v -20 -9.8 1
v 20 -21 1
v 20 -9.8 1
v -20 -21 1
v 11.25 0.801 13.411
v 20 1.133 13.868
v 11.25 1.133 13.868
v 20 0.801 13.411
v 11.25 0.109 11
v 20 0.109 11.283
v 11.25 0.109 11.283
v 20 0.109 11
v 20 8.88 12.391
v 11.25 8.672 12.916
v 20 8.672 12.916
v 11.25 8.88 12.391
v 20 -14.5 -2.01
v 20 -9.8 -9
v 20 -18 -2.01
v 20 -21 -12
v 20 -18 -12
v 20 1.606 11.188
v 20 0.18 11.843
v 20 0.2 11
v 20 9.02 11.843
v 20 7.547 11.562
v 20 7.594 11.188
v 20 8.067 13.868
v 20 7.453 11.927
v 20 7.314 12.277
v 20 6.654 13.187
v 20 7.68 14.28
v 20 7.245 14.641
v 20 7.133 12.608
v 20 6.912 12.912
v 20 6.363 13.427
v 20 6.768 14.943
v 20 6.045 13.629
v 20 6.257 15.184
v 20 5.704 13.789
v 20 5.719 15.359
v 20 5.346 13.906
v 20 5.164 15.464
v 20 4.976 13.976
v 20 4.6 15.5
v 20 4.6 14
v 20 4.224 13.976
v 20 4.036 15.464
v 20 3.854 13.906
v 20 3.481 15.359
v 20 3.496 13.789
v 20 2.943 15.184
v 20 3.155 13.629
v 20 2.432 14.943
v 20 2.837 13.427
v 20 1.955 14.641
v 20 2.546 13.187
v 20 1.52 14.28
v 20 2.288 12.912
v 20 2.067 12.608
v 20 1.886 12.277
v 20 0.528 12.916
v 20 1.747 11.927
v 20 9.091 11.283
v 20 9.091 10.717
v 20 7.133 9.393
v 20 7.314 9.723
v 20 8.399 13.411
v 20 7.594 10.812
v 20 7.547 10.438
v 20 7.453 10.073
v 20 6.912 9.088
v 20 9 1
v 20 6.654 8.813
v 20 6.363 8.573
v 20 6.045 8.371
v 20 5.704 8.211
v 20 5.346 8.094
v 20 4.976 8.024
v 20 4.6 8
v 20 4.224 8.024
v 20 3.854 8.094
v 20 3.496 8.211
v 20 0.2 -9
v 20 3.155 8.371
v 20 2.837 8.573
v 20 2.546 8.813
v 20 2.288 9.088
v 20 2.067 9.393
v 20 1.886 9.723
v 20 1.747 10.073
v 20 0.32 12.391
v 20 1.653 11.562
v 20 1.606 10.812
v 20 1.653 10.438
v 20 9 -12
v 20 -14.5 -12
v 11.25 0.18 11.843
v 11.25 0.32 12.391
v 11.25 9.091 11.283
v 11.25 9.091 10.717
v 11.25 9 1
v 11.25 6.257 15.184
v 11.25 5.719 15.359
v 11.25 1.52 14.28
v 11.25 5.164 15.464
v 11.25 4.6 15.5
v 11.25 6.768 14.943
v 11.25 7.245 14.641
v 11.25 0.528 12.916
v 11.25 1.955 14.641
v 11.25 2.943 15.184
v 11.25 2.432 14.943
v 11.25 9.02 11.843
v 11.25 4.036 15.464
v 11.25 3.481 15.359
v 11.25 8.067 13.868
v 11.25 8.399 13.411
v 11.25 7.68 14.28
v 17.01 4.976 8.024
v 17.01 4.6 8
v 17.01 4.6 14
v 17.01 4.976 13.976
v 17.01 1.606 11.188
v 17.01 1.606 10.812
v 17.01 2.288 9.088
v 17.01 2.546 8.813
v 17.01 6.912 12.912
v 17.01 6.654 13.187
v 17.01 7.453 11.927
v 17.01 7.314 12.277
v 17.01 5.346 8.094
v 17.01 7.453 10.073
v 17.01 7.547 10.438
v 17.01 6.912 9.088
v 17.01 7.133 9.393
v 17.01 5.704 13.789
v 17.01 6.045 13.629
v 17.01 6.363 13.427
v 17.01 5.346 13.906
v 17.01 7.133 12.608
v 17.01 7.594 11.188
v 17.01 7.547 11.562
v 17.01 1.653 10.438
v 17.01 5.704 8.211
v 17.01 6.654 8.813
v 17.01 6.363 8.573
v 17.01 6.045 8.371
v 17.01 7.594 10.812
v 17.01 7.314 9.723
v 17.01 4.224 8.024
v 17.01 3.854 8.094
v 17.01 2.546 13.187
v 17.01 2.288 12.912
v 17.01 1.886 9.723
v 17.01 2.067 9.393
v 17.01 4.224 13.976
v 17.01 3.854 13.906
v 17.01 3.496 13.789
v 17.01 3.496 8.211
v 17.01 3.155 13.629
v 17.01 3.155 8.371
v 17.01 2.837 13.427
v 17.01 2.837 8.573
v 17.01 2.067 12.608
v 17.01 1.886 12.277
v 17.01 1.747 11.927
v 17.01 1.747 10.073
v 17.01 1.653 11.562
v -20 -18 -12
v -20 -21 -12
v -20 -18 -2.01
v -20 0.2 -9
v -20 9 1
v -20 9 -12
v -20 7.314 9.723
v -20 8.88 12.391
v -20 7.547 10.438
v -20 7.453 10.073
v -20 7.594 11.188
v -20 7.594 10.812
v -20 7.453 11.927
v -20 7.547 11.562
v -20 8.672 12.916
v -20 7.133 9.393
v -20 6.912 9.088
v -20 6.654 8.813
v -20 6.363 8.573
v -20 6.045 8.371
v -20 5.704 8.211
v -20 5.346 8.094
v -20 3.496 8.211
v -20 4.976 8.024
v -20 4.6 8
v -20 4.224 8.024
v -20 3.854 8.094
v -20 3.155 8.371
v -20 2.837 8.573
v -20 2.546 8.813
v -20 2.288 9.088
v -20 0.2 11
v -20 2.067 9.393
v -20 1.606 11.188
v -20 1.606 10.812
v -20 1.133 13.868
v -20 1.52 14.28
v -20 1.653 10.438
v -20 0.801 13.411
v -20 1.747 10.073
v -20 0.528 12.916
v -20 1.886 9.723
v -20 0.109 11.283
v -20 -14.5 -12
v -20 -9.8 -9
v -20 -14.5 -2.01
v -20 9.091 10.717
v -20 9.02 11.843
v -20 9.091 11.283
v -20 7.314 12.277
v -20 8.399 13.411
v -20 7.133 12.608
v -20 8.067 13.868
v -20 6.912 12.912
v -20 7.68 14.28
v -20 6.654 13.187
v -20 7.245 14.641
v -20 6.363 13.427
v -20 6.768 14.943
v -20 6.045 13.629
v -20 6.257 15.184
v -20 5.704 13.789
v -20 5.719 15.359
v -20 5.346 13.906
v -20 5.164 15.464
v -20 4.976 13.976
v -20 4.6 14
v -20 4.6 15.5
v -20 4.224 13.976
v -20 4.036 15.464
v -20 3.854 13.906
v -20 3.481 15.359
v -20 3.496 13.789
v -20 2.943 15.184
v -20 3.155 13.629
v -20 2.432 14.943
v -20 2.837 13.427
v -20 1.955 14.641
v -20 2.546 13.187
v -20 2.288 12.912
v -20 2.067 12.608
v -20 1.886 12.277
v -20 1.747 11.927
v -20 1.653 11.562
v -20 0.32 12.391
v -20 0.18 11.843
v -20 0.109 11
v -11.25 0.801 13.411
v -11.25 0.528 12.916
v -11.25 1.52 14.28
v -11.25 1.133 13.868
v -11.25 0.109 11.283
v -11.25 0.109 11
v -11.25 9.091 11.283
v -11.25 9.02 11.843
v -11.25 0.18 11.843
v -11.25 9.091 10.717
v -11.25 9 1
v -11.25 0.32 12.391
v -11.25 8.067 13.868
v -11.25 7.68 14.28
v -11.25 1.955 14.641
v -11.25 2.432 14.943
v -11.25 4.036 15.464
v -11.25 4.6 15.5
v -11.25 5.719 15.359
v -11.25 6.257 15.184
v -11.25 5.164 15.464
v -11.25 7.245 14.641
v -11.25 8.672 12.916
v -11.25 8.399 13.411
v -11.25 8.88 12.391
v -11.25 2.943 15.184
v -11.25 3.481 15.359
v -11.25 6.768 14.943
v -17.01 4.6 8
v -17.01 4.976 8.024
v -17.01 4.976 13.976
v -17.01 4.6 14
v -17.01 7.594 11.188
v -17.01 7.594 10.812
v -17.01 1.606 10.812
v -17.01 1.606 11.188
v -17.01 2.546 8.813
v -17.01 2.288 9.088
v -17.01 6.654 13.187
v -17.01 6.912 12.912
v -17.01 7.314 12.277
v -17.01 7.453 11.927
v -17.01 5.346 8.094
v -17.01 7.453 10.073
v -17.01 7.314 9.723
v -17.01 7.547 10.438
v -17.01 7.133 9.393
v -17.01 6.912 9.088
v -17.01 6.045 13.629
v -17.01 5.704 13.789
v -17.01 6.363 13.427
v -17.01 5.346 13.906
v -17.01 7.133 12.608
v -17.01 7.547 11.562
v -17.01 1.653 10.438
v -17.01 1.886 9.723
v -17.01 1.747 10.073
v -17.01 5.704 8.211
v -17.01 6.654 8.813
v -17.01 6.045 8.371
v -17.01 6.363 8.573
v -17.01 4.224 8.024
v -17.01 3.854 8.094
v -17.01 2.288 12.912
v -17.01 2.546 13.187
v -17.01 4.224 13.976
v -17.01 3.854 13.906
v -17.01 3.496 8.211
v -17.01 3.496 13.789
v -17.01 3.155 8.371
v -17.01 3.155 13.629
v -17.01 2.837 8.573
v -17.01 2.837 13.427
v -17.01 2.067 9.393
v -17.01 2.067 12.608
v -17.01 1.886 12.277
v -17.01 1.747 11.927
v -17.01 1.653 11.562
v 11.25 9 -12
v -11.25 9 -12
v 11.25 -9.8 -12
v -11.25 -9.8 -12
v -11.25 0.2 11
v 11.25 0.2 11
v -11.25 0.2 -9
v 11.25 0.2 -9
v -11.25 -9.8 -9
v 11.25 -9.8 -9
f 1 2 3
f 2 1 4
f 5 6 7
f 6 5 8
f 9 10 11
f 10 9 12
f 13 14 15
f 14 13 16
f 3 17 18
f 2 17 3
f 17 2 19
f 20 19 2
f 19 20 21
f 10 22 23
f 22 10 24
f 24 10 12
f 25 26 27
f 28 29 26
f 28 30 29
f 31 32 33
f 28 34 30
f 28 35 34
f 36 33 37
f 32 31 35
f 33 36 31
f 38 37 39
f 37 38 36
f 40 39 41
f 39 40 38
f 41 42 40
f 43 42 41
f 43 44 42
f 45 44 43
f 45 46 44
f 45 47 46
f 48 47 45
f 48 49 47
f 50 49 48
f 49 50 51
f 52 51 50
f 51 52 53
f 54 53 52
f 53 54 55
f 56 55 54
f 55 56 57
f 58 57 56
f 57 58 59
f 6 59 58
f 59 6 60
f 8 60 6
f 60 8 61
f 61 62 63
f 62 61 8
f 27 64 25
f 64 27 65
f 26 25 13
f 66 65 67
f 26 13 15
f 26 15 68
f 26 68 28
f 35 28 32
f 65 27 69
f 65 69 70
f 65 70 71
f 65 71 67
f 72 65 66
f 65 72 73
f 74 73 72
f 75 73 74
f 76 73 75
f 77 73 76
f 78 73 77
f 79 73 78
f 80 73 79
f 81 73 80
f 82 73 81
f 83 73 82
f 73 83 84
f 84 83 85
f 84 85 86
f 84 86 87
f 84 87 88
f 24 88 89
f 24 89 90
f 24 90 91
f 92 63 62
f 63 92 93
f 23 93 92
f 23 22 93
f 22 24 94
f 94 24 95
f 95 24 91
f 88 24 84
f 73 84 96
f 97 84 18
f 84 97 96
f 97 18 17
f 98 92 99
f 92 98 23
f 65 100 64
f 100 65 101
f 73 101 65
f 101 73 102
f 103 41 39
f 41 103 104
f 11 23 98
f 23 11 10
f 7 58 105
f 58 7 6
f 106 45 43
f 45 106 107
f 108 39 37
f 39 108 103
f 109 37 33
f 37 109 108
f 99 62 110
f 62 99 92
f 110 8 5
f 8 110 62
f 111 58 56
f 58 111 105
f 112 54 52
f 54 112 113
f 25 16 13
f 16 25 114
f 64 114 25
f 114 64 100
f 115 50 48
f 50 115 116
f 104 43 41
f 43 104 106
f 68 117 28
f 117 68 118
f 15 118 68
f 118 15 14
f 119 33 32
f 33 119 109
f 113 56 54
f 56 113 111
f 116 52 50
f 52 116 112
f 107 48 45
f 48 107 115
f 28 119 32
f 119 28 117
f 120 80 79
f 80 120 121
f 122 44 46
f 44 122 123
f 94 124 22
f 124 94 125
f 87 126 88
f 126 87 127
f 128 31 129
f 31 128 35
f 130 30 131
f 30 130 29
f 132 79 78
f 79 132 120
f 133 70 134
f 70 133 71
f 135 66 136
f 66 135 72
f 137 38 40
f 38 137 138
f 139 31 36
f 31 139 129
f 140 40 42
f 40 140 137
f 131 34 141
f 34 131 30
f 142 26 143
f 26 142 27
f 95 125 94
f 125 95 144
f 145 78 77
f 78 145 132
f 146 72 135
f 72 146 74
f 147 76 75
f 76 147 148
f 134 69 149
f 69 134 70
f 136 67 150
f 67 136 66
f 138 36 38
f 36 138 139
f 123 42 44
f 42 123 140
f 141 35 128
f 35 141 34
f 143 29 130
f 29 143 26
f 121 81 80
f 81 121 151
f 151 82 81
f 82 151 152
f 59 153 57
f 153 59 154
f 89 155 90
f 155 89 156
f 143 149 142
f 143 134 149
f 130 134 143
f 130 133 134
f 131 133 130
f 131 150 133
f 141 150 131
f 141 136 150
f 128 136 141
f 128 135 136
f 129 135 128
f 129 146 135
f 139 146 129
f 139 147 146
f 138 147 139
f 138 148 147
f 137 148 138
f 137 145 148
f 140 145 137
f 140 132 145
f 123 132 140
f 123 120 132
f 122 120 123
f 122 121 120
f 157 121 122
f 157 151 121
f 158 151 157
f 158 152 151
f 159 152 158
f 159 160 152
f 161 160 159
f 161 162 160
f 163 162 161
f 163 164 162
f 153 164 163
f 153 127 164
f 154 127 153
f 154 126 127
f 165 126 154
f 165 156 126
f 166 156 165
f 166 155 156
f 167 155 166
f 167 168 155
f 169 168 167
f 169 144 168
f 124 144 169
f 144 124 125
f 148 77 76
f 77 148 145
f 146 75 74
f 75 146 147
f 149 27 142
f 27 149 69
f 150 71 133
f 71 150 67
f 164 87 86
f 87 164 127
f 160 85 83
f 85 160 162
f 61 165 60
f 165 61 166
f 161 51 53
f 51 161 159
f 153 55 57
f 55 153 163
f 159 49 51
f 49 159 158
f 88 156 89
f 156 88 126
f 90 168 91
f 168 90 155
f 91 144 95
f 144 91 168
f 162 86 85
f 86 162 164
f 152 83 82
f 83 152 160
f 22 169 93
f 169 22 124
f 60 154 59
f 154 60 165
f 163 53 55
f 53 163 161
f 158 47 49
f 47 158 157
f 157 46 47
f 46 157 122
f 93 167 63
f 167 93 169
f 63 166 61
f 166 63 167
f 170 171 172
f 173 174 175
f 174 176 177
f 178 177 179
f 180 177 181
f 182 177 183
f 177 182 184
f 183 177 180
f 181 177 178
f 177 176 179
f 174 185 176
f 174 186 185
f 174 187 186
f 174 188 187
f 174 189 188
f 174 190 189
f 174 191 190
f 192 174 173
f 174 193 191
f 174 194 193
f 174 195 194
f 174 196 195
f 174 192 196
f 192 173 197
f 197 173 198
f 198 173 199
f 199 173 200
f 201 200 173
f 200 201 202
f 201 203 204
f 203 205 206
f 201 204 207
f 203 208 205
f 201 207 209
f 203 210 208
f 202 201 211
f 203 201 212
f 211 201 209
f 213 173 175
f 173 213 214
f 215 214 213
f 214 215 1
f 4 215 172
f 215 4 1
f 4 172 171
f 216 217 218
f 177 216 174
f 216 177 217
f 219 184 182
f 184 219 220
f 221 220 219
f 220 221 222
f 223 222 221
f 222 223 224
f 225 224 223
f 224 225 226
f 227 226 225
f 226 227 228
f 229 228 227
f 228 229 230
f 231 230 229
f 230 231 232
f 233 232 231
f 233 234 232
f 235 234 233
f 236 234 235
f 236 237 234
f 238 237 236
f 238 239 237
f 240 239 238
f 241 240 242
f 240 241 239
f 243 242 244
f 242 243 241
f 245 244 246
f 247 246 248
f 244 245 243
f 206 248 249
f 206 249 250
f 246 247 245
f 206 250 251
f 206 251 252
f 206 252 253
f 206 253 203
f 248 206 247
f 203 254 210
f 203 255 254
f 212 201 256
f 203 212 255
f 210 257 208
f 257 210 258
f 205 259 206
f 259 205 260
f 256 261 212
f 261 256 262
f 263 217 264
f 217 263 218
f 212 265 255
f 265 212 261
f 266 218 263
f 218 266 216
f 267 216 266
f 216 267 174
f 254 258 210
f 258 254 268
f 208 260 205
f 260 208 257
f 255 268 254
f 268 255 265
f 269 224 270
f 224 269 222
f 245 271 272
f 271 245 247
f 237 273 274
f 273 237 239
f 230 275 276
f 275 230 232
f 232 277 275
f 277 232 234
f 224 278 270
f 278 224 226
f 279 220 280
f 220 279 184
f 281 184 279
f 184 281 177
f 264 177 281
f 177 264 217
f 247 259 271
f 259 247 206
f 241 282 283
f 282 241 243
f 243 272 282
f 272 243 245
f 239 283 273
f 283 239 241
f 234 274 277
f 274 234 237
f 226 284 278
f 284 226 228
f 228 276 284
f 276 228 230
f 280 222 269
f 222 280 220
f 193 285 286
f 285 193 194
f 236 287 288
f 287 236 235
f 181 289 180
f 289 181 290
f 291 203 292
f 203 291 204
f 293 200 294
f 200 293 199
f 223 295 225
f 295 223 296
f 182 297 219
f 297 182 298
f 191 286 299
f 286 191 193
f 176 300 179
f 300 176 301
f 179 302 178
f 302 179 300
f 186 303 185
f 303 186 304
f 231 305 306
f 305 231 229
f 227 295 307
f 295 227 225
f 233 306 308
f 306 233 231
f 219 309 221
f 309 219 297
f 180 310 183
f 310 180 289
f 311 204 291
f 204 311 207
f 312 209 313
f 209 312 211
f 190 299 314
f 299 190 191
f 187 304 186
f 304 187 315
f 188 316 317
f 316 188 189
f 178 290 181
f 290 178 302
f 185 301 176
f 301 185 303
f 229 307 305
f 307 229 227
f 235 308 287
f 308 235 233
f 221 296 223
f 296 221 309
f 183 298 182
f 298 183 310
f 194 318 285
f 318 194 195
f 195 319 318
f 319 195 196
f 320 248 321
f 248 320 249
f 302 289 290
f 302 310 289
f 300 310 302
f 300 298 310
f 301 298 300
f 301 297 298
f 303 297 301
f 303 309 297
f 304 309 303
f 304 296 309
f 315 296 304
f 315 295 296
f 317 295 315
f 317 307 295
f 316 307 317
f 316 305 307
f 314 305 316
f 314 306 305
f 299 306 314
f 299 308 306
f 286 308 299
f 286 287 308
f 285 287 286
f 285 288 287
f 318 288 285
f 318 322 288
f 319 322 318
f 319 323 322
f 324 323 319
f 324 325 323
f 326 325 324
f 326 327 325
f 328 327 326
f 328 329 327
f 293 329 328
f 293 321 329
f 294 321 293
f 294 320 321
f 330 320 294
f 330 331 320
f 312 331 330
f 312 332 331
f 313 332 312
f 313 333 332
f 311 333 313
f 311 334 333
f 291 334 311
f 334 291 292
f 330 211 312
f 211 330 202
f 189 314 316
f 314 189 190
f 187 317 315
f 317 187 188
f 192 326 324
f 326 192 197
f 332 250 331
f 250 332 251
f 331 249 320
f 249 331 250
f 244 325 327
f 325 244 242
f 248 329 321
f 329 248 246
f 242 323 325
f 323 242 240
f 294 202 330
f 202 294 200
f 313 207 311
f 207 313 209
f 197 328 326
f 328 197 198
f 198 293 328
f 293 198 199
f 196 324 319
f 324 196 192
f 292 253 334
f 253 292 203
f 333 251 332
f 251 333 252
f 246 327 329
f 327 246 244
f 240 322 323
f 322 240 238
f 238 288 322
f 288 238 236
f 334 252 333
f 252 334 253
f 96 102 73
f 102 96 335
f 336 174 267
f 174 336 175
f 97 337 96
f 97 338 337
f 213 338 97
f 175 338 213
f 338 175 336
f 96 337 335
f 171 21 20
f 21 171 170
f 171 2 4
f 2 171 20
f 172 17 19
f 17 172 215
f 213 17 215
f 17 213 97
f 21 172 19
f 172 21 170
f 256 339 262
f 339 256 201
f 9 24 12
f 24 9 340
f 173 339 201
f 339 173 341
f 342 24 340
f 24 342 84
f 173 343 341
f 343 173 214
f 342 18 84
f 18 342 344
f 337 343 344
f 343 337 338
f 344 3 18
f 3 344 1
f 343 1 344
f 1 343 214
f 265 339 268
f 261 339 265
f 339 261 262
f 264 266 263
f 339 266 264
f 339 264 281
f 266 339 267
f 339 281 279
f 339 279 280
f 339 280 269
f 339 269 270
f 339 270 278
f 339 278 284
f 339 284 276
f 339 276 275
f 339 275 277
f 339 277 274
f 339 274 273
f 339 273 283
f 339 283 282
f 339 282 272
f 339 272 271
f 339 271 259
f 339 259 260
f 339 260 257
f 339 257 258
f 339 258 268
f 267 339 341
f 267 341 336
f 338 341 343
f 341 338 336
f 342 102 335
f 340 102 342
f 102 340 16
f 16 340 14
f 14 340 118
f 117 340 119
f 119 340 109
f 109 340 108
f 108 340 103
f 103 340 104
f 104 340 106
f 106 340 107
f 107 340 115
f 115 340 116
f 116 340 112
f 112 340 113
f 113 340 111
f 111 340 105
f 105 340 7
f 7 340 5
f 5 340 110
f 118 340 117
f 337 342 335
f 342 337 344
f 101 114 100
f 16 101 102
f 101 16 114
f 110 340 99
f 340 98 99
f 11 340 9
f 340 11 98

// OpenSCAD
$fn=50;


    /*
    difference(){
        translate([100, -100, 0])
        import_stl("C920_mount_v2.stl", convexity = 4);
        
        translate([-50, 9,-50])
        cube([100,100,100]);
        
        translate([-10,-8,-13])
        cube([20,22,20]);    
    }
    */
difference(){

        union(){
            
            difference(){
                hull(){
                    translate([10,4.6,11])
                    rotate([0,90,0])
                    cylinder(r=4.5, h=10);
                    
                    translate([10,0.2,1])
                    cube([10,4.4*2, 1]);
                }
                translate([17.01,4.6,11])
                rotate([0,90,0])
                cylinder(r=3, h=3);                
            }

            difference(){
                hull(){
                    translate([-20,4.6,11])
                    rotate([0,90,0])
                    cylinder(r=4.5, h=10);
                    
                    translate([-20,0.2,1])
                    cube([10,4.4*2, 1]);
                }   
                translate([-20.01,4.6,11])
                rotate([0,90,0])
                cylinder(r=3, h=3);                                
            }
    
            translate([-20,-21,-12])
            cube([40, 30, 13]);
}
            
            translate([-20.5, -18, -12.01])
            cube([41, 3.5, 10]);
            
            translate([-20.5,-9.8,-9])
            cube([41, 10, 20]);

            translate([-22.5/2,-9.8,-13])
            cube([22.5,22,30]);
}
